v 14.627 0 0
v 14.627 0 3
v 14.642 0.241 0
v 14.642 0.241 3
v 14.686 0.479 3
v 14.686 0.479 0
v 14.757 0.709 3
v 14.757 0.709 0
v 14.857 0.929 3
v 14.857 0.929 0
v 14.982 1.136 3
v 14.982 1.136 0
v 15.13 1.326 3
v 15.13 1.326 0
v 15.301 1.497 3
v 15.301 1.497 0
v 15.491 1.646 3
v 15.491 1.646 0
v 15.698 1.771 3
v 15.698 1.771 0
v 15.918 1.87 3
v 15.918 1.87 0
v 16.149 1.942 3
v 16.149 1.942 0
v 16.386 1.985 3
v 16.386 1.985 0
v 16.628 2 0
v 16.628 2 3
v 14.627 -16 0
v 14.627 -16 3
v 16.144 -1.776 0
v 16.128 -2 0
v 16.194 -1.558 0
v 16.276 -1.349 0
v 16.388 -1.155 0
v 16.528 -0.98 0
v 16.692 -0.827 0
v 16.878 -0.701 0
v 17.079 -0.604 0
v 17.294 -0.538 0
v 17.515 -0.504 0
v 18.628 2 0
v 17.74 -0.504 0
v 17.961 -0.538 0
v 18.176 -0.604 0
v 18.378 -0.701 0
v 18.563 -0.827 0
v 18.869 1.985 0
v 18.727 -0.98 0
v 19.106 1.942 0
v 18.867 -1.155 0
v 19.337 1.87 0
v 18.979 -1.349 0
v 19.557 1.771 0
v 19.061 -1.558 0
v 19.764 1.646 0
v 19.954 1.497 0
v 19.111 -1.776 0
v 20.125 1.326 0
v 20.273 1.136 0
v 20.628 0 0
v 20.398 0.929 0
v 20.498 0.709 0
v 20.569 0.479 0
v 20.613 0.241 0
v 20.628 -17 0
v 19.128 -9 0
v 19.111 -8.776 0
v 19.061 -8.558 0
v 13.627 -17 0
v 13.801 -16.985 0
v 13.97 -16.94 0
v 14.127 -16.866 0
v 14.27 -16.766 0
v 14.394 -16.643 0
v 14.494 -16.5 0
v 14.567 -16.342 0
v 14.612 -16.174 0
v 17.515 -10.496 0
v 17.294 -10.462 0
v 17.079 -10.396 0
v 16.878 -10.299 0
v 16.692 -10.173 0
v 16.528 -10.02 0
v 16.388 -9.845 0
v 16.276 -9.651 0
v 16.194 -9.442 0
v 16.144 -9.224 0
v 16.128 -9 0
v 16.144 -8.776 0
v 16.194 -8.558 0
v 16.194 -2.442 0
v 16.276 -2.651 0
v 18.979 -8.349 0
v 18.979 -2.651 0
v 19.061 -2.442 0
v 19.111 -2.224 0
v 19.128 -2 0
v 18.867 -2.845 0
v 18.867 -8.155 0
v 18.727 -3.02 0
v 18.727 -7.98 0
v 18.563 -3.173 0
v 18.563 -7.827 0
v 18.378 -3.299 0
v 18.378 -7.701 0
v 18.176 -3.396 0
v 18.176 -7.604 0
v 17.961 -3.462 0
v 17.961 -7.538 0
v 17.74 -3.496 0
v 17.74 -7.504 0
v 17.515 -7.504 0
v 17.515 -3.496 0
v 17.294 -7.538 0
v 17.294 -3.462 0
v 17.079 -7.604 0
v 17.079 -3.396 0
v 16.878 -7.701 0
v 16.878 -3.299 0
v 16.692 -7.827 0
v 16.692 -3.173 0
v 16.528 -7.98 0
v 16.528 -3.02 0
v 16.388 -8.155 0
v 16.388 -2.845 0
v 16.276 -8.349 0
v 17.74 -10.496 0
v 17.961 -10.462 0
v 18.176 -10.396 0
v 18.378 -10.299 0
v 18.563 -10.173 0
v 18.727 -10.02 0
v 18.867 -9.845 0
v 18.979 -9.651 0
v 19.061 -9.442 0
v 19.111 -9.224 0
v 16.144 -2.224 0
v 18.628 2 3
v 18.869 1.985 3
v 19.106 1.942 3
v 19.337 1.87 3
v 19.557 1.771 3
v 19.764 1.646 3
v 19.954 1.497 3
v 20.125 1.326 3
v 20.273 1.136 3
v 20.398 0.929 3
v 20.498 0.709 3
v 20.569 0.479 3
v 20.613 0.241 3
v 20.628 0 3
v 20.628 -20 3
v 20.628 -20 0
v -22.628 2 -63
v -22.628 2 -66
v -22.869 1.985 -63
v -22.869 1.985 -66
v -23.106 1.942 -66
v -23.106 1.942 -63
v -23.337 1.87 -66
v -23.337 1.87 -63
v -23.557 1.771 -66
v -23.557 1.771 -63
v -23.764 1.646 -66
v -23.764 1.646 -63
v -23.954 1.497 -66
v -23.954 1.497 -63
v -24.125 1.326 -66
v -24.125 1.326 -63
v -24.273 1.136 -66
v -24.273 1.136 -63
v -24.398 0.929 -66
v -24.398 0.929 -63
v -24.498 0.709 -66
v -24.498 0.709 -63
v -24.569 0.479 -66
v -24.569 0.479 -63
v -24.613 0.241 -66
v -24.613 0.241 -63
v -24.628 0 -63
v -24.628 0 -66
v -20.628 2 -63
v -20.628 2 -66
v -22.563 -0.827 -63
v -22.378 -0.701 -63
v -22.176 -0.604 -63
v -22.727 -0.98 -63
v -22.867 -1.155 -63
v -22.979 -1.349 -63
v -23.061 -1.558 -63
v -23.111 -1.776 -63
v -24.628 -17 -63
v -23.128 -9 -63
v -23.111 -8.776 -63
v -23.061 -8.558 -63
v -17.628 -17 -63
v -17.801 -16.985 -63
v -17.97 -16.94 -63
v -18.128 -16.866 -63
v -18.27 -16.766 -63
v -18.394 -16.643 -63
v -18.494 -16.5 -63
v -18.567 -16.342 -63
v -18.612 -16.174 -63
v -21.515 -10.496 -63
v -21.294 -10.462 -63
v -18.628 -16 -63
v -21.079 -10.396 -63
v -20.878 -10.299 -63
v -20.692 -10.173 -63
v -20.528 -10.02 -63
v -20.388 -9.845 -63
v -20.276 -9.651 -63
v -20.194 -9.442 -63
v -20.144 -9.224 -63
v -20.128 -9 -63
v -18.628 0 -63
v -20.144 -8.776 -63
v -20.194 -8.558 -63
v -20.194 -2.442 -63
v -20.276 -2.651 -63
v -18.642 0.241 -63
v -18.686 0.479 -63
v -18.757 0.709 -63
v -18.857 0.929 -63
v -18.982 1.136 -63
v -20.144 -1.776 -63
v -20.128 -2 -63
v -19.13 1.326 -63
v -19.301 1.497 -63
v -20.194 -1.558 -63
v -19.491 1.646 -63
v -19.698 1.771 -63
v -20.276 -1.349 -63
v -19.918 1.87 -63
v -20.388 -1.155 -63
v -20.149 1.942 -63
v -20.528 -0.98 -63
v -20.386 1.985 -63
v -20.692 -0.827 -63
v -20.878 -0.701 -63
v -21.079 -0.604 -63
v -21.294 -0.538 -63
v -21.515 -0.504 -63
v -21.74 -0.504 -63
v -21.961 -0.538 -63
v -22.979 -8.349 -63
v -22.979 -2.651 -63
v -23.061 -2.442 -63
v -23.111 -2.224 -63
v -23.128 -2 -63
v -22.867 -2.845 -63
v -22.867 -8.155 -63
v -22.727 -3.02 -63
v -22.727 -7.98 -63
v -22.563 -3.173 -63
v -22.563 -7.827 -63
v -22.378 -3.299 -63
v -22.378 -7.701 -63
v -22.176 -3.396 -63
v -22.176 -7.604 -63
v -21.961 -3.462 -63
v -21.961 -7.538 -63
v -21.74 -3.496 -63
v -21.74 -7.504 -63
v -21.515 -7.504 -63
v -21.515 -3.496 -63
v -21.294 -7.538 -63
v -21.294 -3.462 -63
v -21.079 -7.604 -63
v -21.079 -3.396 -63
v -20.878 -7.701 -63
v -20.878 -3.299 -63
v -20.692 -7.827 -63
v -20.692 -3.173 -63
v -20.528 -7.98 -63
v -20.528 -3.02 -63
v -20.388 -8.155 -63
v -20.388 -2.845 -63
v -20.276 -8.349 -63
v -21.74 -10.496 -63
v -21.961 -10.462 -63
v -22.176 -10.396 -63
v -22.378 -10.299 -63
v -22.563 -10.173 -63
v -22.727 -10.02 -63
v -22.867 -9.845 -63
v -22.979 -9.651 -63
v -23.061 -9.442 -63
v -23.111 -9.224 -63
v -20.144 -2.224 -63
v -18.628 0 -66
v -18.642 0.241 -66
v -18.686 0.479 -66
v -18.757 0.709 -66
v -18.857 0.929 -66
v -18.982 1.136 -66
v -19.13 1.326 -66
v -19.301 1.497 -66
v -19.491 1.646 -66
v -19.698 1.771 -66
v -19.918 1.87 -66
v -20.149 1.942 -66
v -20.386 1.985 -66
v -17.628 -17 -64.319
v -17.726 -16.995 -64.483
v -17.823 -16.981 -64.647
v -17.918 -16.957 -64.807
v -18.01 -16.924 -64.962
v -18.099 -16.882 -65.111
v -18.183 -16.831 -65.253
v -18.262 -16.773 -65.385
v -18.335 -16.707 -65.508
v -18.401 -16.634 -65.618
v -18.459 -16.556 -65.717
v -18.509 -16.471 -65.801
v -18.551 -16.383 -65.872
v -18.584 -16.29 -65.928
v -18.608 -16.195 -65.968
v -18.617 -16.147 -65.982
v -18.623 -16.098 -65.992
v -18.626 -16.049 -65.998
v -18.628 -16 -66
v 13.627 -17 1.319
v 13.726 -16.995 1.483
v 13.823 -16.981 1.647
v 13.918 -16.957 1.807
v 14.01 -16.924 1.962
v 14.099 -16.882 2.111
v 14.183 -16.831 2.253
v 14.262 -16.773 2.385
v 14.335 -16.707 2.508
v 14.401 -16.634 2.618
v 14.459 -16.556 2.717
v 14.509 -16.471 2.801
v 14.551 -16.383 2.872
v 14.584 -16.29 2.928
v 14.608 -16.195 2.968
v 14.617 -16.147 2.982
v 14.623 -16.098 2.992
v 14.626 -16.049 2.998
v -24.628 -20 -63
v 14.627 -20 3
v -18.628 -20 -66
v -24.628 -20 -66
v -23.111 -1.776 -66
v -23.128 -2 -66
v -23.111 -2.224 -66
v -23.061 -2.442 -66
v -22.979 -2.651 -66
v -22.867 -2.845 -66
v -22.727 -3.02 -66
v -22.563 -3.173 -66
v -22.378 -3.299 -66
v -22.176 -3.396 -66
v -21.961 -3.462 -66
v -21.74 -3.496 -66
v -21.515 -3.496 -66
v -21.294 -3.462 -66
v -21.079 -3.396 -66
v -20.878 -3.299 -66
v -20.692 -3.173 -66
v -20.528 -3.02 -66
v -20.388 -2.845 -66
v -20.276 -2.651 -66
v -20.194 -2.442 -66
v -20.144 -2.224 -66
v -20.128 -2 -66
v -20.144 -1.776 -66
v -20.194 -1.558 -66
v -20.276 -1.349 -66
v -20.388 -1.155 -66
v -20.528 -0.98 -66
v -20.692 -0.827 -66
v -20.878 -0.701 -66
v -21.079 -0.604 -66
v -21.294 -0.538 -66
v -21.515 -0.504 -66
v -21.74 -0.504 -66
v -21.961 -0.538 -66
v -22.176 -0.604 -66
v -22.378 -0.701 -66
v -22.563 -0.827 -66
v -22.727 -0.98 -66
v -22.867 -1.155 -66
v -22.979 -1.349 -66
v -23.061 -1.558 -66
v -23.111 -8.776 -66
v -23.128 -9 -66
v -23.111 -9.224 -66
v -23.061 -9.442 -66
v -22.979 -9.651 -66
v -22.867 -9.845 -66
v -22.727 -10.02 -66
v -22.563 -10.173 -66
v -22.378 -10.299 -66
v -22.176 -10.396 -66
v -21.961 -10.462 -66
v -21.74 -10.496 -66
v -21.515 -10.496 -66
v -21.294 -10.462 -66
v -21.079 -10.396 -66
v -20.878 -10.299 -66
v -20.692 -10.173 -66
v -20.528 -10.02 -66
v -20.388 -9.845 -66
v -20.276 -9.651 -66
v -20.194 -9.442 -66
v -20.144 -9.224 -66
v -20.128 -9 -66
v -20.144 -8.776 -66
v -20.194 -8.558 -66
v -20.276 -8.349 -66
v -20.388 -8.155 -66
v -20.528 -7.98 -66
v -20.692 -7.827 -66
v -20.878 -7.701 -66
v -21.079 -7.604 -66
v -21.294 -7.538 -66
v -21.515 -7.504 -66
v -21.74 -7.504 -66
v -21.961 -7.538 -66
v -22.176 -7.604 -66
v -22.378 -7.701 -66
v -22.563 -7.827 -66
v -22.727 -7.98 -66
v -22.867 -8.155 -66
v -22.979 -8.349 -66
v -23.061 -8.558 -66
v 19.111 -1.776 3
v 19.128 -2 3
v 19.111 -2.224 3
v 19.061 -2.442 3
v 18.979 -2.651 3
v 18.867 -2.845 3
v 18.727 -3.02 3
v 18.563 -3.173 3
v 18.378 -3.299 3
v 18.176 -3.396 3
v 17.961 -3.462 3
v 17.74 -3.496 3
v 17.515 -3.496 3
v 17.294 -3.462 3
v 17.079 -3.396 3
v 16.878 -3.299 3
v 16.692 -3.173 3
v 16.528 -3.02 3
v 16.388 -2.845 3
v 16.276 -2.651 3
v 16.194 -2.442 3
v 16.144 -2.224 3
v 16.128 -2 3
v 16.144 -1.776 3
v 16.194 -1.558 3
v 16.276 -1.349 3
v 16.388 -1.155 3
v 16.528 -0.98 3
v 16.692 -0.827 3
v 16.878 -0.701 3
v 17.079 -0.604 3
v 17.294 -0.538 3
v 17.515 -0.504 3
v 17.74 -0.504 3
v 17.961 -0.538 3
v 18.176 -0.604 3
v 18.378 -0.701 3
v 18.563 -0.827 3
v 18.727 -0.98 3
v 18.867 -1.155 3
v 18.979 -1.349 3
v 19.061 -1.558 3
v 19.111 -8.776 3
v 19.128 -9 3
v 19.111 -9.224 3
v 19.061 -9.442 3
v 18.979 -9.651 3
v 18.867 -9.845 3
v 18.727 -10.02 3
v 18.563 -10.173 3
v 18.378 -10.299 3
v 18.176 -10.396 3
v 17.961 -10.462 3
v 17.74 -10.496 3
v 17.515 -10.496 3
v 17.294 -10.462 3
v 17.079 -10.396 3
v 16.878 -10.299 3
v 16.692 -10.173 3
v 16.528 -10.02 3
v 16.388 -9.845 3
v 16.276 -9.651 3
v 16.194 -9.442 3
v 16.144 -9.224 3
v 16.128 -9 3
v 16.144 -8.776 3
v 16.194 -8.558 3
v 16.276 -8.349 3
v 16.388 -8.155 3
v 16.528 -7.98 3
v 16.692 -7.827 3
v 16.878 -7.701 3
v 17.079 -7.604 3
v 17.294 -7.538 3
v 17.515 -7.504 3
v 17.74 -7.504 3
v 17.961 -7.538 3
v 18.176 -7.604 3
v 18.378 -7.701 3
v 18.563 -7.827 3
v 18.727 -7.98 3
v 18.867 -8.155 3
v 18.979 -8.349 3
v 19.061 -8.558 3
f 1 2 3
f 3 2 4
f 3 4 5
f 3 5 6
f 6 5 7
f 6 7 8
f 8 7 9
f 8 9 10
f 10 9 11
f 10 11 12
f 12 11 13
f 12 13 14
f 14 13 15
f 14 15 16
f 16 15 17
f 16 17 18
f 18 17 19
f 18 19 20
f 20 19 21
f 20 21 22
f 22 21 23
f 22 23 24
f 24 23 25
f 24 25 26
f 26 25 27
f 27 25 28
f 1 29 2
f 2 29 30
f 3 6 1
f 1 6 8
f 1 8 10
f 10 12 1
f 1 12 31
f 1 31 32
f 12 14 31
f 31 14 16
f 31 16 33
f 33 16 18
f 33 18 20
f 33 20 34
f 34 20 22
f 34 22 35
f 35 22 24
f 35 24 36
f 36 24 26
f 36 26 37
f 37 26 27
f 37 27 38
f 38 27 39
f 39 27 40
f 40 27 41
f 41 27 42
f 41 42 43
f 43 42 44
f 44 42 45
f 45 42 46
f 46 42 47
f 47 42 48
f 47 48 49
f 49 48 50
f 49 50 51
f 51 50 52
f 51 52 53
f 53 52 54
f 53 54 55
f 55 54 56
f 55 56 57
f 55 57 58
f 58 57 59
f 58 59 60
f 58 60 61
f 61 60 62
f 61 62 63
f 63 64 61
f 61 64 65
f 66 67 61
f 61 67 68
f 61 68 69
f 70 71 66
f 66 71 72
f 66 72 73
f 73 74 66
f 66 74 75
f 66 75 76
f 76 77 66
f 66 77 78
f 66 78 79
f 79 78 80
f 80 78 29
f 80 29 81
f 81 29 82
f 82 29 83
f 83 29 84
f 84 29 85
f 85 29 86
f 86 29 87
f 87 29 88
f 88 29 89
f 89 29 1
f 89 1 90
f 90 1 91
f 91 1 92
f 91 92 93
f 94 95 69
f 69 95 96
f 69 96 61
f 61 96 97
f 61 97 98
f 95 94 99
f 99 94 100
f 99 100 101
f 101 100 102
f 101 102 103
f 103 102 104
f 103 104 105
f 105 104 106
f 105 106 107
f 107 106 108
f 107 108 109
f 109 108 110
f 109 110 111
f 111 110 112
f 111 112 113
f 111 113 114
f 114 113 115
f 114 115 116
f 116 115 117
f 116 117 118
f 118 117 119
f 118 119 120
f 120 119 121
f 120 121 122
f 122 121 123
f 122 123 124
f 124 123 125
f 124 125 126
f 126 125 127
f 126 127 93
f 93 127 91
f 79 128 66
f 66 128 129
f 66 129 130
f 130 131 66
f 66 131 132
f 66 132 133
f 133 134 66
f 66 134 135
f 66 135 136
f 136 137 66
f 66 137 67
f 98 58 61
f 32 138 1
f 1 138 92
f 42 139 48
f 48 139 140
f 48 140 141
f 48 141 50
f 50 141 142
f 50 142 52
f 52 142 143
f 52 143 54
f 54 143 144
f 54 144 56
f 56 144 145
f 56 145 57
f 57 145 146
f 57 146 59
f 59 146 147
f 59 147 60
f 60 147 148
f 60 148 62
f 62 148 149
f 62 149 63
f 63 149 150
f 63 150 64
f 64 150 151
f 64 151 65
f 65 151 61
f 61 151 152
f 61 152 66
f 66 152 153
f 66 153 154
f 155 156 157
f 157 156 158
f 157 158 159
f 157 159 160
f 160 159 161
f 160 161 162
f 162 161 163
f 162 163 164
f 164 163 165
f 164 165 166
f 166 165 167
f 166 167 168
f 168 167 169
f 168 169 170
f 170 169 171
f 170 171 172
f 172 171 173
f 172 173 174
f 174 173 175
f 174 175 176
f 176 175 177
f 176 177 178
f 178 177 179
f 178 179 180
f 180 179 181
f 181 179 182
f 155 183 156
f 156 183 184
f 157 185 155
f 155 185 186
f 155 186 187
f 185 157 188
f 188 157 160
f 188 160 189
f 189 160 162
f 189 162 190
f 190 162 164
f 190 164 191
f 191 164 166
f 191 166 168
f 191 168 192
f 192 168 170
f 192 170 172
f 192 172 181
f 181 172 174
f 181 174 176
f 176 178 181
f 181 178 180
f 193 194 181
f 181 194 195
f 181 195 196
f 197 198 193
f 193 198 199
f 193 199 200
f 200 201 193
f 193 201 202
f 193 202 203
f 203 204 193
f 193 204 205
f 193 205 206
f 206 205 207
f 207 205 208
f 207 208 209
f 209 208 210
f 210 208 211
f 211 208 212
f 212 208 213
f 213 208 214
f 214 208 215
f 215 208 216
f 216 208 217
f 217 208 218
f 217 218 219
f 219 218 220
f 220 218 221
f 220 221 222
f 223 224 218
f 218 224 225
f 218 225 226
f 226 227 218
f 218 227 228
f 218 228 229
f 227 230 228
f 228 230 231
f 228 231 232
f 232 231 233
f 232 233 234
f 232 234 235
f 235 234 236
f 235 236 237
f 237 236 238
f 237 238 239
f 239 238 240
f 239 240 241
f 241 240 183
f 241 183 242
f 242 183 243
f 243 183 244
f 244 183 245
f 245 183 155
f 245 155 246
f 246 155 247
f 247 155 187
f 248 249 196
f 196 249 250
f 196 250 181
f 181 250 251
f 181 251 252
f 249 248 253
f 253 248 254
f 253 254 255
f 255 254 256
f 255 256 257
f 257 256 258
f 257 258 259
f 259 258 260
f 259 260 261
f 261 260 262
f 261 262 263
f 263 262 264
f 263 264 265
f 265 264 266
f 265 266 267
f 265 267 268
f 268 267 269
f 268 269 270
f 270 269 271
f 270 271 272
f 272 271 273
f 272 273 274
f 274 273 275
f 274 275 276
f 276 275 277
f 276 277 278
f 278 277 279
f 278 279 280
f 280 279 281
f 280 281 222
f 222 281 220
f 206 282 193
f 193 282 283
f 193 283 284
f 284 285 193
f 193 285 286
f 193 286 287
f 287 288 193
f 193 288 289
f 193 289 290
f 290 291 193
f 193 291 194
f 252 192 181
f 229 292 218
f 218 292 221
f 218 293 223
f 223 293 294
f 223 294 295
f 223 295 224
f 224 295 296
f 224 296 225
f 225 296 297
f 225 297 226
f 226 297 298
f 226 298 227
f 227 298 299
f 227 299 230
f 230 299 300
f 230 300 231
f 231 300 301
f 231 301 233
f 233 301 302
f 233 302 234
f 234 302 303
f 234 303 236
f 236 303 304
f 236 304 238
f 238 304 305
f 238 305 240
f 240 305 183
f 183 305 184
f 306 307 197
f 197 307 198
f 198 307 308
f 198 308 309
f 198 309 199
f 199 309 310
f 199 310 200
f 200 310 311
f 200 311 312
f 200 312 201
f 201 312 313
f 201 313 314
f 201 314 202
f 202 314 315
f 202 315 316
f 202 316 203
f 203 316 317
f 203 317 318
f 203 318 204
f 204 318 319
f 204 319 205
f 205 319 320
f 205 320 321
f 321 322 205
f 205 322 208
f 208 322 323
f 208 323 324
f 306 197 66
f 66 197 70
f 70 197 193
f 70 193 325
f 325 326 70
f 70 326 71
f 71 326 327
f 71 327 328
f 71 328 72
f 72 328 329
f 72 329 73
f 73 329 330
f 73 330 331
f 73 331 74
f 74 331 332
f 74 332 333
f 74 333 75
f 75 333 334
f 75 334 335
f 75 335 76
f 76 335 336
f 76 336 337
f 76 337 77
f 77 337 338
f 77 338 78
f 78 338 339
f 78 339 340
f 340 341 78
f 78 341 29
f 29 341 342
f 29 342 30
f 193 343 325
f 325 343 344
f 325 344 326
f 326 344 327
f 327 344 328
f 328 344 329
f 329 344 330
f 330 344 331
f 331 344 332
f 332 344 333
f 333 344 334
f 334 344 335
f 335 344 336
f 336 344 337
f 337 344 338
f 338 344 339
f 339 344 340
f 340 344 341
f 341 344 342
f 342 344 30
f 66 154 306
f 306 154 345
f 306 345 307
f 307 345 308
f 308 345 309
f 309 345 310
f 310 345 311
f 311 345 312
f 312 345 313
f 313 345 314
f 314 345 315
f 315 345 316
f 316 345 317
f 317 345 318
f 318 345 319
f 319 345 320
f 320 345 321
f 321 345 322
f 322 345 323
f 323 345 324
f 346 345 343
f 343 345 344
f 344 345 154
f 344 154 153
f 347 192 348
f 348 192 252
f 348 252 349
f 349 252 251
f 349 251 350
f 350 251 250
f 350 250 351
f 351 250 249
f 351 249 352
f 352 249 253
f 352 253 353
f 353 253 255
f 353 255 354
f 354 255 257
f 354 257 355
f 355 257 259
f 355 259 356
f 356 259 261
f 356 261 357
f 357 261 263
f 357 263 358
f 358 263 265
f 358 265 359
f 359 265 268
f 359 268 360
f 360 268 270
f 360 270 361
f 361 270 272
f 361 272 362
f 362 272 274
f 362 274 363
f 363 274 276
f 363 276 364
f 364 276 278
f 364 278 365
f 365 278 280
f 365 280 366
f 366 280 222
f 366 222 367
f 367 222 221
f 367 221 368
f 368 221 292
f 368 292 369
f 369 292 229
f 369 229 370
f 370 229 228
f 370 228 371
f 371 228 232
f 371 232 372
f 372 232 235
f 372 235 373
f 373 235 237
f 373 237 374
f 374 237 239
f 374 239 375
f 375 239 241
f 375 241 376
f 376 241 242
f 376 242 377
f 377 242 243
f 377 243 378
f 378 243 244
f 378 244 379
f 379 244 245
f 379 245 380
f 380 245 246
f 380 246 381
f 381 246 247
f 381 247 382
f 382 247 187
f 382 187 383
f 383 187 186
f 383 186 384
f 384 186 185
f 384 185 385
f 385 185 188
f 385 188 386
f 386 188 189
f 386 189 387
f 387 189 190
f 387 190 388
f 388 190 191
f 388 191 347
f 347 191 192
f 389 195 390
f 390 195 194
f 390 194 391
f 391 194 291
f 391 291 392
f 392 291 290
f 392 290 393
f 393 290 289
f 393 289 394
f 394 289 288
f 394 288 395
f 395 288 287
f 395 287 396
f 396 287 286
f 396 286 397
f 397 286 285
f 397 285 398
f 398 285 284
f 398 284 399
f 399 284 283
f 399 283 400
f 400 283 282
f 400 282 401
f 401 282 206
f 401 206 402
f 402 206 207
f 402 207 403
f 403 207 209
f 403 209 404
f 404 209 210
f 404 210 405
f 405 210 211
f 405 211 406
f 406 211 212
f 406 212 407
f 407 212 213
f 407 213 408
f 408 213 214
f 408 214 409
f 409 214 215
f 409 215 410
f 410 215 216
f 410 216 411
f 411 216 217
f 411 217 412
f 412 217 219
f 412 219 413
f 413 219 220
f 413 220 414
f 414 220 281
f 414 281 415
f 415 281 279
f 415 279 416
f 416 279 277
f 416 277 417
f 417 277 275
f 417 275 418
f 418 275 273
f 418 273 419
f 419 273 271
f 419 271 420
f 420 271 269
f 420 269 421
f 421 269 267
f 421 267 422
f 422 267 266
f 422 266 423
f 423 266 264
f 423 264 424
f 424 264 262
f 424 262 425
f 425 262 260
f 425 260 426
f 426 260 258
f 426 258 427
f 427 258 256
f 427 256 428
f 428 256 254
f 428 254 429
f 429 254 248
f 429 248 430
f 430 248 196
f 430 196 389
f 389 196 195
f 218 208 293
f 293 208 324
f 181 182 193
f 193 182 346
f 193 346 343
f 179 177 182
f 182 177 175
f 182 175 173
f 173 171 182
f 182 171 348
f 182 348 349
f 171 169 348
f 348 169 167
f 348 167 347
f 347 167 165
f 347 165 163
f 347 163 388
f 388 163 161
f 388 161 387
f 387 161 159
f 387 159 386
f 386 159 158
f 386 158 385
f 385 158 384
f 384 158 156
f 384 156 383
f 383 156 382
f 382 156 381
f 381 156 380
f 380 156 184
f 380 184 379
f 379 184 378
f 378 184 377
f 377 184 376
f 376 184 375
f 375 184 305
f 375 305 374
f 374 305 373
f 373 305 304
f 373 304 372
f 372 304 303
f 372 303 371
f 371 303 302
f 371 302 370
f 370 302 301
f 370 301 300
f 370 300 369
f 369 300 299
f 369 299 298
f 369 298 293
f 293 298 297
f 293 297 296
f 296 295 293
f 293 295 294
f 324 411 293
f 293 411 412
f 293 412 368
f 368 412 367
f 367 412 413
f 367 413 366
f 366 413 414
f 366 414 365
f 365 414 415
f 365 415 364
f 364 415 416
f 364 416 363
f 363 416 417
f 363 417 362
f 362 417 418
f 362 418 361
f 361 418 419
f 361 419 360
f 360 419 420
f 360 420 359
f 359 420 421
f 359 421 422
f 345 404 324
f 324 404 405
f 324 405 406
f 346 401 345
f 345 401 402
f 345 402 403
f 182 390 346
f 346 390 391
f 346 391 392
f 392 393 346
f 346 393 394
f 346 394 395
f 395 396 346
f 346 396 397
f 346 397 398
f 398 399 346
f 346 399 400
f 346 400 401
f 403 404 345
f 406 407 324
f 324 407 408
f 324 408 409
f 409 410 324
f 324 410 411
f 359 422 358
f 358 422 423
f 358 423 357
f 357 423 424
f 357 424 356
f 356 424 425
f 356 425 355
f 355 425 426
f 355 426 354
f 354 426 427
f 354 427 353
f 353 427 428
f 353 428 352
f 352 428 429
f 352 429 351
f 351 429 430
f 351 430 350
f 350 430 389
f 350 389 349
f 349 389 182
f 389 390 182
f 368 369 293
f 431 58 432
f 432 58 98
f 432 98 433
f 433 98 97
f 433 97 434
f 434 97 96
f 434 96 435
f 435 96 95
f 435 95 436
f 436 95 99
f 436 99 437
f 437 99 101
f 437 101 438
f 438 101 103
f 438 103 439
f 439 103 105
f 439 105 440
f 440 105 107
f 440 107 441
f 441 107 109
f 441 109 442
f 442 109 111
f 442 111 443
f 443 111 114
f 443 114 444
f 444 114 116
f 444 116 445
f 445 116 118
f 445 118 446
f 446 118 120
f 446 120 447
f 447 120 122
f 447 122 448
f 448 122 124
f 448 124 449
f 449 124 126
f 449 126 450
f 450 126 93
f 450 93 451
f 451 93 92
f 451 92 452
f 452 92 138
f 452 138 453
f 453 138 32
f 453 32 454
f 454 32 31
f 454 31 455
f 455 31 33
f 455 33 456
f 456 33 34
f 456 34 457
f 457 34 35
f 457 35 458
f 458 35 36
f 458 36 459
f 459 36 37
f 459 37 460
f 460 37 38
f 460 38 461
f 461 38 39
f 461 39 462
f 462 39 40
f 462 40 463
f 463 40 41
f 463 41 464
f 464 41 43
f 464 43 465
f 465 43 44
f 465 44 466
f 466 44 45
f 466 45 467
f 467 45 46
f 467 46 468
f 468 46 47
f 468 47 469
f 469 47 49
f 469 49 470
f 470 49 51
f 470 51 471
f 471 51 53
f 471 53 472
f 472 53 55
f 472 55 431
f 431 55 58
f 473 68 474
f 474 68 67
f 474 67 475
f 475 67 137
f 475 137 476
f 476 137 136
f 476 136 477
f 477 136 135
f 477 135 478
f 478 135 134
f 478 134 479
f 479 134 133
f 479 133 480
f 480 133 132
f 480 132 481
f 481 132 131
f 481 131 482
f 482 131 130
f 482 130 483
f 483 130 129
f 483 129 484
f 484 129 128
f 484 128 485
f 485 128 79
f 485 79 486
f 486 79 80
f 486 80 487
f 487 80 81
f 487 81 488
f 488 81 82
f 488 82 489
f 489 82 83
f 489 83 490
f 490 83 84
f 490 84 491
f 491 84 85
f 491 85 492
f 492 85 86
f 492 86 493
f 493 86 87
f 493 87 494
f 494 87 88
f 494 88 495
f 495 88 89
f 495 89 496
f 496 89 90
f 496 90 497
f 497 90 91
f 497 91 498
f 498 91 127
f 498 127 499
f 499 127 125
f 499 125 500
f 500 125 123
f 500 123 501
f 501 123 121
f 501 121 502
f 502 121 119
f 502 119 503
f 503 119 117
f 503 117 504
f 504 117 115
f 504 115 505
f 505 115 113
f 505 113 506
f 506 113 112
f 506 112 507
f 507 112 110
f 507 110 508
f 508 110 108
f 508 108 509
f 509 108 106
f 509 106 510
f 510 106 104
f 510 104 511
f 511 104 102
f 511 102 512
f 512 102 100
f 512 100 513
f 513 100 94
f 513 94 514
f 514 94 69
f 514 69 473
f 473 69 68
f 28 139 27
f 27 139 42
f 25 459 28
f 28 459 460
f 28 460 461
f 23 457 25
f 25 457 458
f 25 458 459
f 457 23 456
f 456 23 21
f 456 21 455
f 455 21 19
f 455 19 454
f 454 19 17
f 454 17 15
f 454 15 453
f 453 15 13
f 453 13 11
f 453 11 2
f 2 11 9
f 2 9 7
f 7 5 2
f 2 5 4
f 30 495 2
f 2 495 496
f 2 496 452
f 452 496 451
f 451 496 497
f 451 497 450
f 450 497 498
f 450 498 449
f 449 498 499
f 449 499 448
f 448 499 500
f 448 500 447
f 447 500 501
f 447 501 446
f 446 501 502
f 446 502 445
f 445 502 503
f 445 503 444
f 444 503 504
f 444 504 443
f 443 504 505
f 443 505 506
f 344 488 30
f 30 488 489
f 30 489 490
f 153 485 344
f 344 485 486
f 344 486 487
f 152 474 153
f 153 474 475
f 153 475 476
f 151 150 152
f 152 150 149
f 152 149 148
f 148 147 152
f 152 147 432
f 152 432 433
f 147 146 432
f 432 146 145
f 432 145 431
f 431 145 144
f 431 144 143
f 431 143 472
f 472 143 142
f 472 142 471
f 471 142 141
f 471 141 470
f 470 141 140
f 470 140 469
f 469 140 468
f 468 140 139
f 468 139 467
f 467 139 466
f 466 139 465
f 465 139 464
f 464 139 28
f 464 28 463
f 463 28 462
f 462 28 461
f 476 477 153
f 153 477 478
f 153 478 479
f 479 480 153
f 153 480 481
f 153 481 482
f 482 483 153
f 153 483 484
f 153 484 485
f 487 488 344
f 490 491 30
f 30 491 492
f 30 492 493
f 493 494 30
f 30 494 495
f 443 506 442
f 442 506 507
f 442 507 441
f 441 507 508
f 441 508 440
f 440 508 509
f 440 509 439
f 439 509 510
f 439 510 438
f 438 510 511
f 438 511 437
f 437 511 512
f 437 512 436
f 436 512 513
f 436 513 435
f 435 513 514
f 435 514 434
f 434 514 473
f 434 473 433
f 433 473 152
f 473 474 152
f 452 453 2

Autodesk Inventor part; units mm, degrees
ref_plane "YZ Plane" through (0, 0, 0) normal (1, 0, 0) x (0, 1, 0)
ref_plane "XZ Plane" through (0, 0, 0) normal (0, 1, 0) x (-1, 0, 0)
ref_plane "XY Plane" through (0, 0, 0) normal (0, 0, 1) x (1, 0, 0)
sketch "Sketch1" plane through (0, 0, 0) normal (0, 0, 1) x (1, 0, 0)
  line L0 (32.6242, -2.1) -> (40.6242, -2.1) projected
  arc A0 (41.6242, -3.1) -> (40.6242, -2.1) centre (40.6242, -3.1) ccw projected
  line L1 (41.6242, -3.1) -> (41.6242, -14) projected
  line L2 (65.6275, -14) -> (41.6242, -14) projected
  line L3 (65.6275, -14) -> (65.6275, -2) projected
  arc A1 (67.6275, 0) -> (65.6275, -2) centre (67.6275, -2) ccw projected
  line L4 (67.6275, 0) -> (74, 0) projected
  line L5 (74, 0) -> (74, 2) projected
  line L6 (10, 2) -> (74, 2) projected
  line L7 (10, 2) -> (10, -14) projected
  line L8 (31.6242, -14) -> (10, -14) projected
  line L9 (31.6242, -14) -> (31.6242, -3.1) projected
  arc A2 (32.6242, -2.1) -> (31.6242, -3.1) centre (32.6242, -3.1) ccw projected
  circle A3 centre (12.5, -10.5) radius 1 projected
  circle A4 centre (59.6275, -9) radius 1.5 projected
  circle A5 centre (27.6275, -9) radius 1.5 projected
  circle A6 centre (17.6275, -2) radius 1.5 projected
  circle A7 centre (47.6275, -2) radius 1.5 projected
  circle A8 centre (59.6275, -2) radius 1.5 projected
  circle A9 centre (27.6275, -2) radius 1.5 projected
  circle A10 centre (17.6275, -9) radius 1.5 projected
  circle A11 centre (47.6275, -9) radius 1.5 projected
  line L10 (17.6275, -9) -> (17.6275, -2)
  line L11 (64.6275, -17) -> (10, -17) projected
  line L12 (20.6275, -13) -> (14.6275, -13)
  line L13 (14.6275, -13) -> (14.6275, 2)
  line L14 (14.6275, 2) -> (20.6275, 2)
  line L15 (20.6275, 2) -> (20.6275, -13)
  line L16 (20.6275, -13) -> (14.6275, 2) construction
  line L17 (14.6275, -13) -> (20.6275, 2) construction
  line L18 (20.6275, -13) -> (14.6275, -13)
  line L19 (14.6275, -13) -> (14.6275, -17)
  line L20 (14.6275, -17) -> (20.6275, -17)
  line L21 (20.6275, -17) -> (20.6275, -13)
  point P0 (0, 0)
  point P1 (17.6275, -5.5)
  dimension "d0" = 6
  dimension "d1" = 15
  dimension "d2" = 6
  dimension "d3" = 4
extrude "Extrusion1" add sketch "Sketch1" along normal blind 3 contours L21 L11 L19 L8 | L8 L19 L12 L21 | L12 L13 L6 L15
ref_plane "Work Plane1" through (-4, 0, -63) normal (0, 0, -1) x (-1, 0, 0)
sketch "Sketch2" plane through (-4, 0, -63) normal (0, 0, -1) x (-1, 0, 0)
  line L0 (32.6242, -2.1) -> (40.6242, -2.1) projected
  arc A0 (41.6242, -3.1) -> (40.6242, -2.1) centre (40.6242, -3.1) ccw projected
  line L1 (41.6242, -3.1) -> (41.6242, -14) projected
  line L2 (65.6275, -14) -> (41.6242, -14) projected
  line L3 (65.6275, -14) -> (65.6275, -2) projected
  arc A1 (67.6275, 0) -> (65.6275, -2) centre (67.6275, -2) ccw projected
  line L4 (67.6275, 0) -> (74, 0) projected
  line L5 (74, 0) -> (74, 2) projected
  line L6 (10, 2) -> (74, 2) projected
  line L7 (10, 2) -> (10, -14) projected
  line L8 (31.6242, -14) -> (10, -14) projected
  line L9 (31.6242, -14) -> (31.6242, -3.1) projected
  arc A2 (32.6242, -2.1) -> (31.6242, -3.1) centre (32.6242, -3.1) ccw projected
  circle A3 centre (12.5, -10.5) radius 1 projected
  circle A4 centre (59.6275, -9) radius 1.5 projected
  circle A5 centre (27.6275, -9) radius 1.5 projected
  circle A6 centre (17.6275, -2) radius 1.5 projected
  circle A7 centre (47.6275, -2) radius 1.5 projected
  circle A8 centre (59.6275, -2) radius 1.5 projected
  circle A9 centre (27.6275, -2) radius 1.5 projected
  circle A10 centre (17.6275, -9) radius 1.5 projected
  circle A11 centre (47.6275, -9) radius 1.5 projected
  line L10 (64.6275, -17) -> (10, -17) projected
  line L11 (17.6275, -9) -> (17.6275, -2)
  line L12 (14.6275, -13) -> (20.6275, -13)
  line L13 (20.6275, -13) -> (20.6275, 2)
  line L14 (20.6275, 2) -> (14.6275, 2)
  line L15 (14.6275, 2) -> (14.6275, -13)
  line L16 (14.6275, -13) -> (20.6275, 2) construction
  line L17 (20.6275, -13) -> (14.6275, 2) construction
  line L18 (14.6275, -13) -> (20.6275, -13)
  line L19 (20.6275, -13) -> (20.6275, -17)
  line L20 (20.6275, -17) -> (14.6275, -17)
  line L21 (14.6275, -17) -> (14.6275, -13)
  point P0 (-4, 0)
  point P1 (17.6275, -5.5)
  dimension "d6" = 6
  dimension "d7" = 15
  dimension "d8" = 6
  dimension "d9" = 4
extrude "Extrusion2" add sketch "Sketch2" along normal blind 3 contours L19 L10 L21 L8 | L8 L21 L12 L19 | L12 L15 L6 L13
sketch "Sketch3" plane through (-24.6275, -17, -63) normal (0, -1, 0) x (1, 0, 0)
  line L0 (6, 0) -> (0, 0) projected
  line L1 (0, 0) -> (0, -3) projected
  line L2 (6, -3) -> (0, -3) projected
  line L3 (6, 0) -> (6, -3) projected
  line L4 (39.255, 63) -> (45.255, 63) projected
  line L5 (45.255, 63) -> (45.255, 66) projected
  line L6 (39.255, 66) -> (45.255, 66) projected
  line L7 (39.255, 63) -> (39.255, 66) projected
  line L8 (45.255, 63) -> (6, -3)
  line L9 (39.255, 63) -> (39.255, 66) projected
  line L10 (39.255, 66) -> (0, 0)
  point P0 (24.6275, 63)
extrude "Extrusion3" add sketch "Sketch3" along normal blind 3
fillet "Fillet1" radius 1 2 edges at (14.6275, -17, 1.5) (-18.6275, -17, -64.5)
fillet "Fillet2" radius 2 4 edges at (-18.6275, 2, -64.5) (-24.6275, 2, -64.5) (20.6275, 2, 1.5) (14.6275, 2, 1.5)
properties part number "pcb_holder_3"
